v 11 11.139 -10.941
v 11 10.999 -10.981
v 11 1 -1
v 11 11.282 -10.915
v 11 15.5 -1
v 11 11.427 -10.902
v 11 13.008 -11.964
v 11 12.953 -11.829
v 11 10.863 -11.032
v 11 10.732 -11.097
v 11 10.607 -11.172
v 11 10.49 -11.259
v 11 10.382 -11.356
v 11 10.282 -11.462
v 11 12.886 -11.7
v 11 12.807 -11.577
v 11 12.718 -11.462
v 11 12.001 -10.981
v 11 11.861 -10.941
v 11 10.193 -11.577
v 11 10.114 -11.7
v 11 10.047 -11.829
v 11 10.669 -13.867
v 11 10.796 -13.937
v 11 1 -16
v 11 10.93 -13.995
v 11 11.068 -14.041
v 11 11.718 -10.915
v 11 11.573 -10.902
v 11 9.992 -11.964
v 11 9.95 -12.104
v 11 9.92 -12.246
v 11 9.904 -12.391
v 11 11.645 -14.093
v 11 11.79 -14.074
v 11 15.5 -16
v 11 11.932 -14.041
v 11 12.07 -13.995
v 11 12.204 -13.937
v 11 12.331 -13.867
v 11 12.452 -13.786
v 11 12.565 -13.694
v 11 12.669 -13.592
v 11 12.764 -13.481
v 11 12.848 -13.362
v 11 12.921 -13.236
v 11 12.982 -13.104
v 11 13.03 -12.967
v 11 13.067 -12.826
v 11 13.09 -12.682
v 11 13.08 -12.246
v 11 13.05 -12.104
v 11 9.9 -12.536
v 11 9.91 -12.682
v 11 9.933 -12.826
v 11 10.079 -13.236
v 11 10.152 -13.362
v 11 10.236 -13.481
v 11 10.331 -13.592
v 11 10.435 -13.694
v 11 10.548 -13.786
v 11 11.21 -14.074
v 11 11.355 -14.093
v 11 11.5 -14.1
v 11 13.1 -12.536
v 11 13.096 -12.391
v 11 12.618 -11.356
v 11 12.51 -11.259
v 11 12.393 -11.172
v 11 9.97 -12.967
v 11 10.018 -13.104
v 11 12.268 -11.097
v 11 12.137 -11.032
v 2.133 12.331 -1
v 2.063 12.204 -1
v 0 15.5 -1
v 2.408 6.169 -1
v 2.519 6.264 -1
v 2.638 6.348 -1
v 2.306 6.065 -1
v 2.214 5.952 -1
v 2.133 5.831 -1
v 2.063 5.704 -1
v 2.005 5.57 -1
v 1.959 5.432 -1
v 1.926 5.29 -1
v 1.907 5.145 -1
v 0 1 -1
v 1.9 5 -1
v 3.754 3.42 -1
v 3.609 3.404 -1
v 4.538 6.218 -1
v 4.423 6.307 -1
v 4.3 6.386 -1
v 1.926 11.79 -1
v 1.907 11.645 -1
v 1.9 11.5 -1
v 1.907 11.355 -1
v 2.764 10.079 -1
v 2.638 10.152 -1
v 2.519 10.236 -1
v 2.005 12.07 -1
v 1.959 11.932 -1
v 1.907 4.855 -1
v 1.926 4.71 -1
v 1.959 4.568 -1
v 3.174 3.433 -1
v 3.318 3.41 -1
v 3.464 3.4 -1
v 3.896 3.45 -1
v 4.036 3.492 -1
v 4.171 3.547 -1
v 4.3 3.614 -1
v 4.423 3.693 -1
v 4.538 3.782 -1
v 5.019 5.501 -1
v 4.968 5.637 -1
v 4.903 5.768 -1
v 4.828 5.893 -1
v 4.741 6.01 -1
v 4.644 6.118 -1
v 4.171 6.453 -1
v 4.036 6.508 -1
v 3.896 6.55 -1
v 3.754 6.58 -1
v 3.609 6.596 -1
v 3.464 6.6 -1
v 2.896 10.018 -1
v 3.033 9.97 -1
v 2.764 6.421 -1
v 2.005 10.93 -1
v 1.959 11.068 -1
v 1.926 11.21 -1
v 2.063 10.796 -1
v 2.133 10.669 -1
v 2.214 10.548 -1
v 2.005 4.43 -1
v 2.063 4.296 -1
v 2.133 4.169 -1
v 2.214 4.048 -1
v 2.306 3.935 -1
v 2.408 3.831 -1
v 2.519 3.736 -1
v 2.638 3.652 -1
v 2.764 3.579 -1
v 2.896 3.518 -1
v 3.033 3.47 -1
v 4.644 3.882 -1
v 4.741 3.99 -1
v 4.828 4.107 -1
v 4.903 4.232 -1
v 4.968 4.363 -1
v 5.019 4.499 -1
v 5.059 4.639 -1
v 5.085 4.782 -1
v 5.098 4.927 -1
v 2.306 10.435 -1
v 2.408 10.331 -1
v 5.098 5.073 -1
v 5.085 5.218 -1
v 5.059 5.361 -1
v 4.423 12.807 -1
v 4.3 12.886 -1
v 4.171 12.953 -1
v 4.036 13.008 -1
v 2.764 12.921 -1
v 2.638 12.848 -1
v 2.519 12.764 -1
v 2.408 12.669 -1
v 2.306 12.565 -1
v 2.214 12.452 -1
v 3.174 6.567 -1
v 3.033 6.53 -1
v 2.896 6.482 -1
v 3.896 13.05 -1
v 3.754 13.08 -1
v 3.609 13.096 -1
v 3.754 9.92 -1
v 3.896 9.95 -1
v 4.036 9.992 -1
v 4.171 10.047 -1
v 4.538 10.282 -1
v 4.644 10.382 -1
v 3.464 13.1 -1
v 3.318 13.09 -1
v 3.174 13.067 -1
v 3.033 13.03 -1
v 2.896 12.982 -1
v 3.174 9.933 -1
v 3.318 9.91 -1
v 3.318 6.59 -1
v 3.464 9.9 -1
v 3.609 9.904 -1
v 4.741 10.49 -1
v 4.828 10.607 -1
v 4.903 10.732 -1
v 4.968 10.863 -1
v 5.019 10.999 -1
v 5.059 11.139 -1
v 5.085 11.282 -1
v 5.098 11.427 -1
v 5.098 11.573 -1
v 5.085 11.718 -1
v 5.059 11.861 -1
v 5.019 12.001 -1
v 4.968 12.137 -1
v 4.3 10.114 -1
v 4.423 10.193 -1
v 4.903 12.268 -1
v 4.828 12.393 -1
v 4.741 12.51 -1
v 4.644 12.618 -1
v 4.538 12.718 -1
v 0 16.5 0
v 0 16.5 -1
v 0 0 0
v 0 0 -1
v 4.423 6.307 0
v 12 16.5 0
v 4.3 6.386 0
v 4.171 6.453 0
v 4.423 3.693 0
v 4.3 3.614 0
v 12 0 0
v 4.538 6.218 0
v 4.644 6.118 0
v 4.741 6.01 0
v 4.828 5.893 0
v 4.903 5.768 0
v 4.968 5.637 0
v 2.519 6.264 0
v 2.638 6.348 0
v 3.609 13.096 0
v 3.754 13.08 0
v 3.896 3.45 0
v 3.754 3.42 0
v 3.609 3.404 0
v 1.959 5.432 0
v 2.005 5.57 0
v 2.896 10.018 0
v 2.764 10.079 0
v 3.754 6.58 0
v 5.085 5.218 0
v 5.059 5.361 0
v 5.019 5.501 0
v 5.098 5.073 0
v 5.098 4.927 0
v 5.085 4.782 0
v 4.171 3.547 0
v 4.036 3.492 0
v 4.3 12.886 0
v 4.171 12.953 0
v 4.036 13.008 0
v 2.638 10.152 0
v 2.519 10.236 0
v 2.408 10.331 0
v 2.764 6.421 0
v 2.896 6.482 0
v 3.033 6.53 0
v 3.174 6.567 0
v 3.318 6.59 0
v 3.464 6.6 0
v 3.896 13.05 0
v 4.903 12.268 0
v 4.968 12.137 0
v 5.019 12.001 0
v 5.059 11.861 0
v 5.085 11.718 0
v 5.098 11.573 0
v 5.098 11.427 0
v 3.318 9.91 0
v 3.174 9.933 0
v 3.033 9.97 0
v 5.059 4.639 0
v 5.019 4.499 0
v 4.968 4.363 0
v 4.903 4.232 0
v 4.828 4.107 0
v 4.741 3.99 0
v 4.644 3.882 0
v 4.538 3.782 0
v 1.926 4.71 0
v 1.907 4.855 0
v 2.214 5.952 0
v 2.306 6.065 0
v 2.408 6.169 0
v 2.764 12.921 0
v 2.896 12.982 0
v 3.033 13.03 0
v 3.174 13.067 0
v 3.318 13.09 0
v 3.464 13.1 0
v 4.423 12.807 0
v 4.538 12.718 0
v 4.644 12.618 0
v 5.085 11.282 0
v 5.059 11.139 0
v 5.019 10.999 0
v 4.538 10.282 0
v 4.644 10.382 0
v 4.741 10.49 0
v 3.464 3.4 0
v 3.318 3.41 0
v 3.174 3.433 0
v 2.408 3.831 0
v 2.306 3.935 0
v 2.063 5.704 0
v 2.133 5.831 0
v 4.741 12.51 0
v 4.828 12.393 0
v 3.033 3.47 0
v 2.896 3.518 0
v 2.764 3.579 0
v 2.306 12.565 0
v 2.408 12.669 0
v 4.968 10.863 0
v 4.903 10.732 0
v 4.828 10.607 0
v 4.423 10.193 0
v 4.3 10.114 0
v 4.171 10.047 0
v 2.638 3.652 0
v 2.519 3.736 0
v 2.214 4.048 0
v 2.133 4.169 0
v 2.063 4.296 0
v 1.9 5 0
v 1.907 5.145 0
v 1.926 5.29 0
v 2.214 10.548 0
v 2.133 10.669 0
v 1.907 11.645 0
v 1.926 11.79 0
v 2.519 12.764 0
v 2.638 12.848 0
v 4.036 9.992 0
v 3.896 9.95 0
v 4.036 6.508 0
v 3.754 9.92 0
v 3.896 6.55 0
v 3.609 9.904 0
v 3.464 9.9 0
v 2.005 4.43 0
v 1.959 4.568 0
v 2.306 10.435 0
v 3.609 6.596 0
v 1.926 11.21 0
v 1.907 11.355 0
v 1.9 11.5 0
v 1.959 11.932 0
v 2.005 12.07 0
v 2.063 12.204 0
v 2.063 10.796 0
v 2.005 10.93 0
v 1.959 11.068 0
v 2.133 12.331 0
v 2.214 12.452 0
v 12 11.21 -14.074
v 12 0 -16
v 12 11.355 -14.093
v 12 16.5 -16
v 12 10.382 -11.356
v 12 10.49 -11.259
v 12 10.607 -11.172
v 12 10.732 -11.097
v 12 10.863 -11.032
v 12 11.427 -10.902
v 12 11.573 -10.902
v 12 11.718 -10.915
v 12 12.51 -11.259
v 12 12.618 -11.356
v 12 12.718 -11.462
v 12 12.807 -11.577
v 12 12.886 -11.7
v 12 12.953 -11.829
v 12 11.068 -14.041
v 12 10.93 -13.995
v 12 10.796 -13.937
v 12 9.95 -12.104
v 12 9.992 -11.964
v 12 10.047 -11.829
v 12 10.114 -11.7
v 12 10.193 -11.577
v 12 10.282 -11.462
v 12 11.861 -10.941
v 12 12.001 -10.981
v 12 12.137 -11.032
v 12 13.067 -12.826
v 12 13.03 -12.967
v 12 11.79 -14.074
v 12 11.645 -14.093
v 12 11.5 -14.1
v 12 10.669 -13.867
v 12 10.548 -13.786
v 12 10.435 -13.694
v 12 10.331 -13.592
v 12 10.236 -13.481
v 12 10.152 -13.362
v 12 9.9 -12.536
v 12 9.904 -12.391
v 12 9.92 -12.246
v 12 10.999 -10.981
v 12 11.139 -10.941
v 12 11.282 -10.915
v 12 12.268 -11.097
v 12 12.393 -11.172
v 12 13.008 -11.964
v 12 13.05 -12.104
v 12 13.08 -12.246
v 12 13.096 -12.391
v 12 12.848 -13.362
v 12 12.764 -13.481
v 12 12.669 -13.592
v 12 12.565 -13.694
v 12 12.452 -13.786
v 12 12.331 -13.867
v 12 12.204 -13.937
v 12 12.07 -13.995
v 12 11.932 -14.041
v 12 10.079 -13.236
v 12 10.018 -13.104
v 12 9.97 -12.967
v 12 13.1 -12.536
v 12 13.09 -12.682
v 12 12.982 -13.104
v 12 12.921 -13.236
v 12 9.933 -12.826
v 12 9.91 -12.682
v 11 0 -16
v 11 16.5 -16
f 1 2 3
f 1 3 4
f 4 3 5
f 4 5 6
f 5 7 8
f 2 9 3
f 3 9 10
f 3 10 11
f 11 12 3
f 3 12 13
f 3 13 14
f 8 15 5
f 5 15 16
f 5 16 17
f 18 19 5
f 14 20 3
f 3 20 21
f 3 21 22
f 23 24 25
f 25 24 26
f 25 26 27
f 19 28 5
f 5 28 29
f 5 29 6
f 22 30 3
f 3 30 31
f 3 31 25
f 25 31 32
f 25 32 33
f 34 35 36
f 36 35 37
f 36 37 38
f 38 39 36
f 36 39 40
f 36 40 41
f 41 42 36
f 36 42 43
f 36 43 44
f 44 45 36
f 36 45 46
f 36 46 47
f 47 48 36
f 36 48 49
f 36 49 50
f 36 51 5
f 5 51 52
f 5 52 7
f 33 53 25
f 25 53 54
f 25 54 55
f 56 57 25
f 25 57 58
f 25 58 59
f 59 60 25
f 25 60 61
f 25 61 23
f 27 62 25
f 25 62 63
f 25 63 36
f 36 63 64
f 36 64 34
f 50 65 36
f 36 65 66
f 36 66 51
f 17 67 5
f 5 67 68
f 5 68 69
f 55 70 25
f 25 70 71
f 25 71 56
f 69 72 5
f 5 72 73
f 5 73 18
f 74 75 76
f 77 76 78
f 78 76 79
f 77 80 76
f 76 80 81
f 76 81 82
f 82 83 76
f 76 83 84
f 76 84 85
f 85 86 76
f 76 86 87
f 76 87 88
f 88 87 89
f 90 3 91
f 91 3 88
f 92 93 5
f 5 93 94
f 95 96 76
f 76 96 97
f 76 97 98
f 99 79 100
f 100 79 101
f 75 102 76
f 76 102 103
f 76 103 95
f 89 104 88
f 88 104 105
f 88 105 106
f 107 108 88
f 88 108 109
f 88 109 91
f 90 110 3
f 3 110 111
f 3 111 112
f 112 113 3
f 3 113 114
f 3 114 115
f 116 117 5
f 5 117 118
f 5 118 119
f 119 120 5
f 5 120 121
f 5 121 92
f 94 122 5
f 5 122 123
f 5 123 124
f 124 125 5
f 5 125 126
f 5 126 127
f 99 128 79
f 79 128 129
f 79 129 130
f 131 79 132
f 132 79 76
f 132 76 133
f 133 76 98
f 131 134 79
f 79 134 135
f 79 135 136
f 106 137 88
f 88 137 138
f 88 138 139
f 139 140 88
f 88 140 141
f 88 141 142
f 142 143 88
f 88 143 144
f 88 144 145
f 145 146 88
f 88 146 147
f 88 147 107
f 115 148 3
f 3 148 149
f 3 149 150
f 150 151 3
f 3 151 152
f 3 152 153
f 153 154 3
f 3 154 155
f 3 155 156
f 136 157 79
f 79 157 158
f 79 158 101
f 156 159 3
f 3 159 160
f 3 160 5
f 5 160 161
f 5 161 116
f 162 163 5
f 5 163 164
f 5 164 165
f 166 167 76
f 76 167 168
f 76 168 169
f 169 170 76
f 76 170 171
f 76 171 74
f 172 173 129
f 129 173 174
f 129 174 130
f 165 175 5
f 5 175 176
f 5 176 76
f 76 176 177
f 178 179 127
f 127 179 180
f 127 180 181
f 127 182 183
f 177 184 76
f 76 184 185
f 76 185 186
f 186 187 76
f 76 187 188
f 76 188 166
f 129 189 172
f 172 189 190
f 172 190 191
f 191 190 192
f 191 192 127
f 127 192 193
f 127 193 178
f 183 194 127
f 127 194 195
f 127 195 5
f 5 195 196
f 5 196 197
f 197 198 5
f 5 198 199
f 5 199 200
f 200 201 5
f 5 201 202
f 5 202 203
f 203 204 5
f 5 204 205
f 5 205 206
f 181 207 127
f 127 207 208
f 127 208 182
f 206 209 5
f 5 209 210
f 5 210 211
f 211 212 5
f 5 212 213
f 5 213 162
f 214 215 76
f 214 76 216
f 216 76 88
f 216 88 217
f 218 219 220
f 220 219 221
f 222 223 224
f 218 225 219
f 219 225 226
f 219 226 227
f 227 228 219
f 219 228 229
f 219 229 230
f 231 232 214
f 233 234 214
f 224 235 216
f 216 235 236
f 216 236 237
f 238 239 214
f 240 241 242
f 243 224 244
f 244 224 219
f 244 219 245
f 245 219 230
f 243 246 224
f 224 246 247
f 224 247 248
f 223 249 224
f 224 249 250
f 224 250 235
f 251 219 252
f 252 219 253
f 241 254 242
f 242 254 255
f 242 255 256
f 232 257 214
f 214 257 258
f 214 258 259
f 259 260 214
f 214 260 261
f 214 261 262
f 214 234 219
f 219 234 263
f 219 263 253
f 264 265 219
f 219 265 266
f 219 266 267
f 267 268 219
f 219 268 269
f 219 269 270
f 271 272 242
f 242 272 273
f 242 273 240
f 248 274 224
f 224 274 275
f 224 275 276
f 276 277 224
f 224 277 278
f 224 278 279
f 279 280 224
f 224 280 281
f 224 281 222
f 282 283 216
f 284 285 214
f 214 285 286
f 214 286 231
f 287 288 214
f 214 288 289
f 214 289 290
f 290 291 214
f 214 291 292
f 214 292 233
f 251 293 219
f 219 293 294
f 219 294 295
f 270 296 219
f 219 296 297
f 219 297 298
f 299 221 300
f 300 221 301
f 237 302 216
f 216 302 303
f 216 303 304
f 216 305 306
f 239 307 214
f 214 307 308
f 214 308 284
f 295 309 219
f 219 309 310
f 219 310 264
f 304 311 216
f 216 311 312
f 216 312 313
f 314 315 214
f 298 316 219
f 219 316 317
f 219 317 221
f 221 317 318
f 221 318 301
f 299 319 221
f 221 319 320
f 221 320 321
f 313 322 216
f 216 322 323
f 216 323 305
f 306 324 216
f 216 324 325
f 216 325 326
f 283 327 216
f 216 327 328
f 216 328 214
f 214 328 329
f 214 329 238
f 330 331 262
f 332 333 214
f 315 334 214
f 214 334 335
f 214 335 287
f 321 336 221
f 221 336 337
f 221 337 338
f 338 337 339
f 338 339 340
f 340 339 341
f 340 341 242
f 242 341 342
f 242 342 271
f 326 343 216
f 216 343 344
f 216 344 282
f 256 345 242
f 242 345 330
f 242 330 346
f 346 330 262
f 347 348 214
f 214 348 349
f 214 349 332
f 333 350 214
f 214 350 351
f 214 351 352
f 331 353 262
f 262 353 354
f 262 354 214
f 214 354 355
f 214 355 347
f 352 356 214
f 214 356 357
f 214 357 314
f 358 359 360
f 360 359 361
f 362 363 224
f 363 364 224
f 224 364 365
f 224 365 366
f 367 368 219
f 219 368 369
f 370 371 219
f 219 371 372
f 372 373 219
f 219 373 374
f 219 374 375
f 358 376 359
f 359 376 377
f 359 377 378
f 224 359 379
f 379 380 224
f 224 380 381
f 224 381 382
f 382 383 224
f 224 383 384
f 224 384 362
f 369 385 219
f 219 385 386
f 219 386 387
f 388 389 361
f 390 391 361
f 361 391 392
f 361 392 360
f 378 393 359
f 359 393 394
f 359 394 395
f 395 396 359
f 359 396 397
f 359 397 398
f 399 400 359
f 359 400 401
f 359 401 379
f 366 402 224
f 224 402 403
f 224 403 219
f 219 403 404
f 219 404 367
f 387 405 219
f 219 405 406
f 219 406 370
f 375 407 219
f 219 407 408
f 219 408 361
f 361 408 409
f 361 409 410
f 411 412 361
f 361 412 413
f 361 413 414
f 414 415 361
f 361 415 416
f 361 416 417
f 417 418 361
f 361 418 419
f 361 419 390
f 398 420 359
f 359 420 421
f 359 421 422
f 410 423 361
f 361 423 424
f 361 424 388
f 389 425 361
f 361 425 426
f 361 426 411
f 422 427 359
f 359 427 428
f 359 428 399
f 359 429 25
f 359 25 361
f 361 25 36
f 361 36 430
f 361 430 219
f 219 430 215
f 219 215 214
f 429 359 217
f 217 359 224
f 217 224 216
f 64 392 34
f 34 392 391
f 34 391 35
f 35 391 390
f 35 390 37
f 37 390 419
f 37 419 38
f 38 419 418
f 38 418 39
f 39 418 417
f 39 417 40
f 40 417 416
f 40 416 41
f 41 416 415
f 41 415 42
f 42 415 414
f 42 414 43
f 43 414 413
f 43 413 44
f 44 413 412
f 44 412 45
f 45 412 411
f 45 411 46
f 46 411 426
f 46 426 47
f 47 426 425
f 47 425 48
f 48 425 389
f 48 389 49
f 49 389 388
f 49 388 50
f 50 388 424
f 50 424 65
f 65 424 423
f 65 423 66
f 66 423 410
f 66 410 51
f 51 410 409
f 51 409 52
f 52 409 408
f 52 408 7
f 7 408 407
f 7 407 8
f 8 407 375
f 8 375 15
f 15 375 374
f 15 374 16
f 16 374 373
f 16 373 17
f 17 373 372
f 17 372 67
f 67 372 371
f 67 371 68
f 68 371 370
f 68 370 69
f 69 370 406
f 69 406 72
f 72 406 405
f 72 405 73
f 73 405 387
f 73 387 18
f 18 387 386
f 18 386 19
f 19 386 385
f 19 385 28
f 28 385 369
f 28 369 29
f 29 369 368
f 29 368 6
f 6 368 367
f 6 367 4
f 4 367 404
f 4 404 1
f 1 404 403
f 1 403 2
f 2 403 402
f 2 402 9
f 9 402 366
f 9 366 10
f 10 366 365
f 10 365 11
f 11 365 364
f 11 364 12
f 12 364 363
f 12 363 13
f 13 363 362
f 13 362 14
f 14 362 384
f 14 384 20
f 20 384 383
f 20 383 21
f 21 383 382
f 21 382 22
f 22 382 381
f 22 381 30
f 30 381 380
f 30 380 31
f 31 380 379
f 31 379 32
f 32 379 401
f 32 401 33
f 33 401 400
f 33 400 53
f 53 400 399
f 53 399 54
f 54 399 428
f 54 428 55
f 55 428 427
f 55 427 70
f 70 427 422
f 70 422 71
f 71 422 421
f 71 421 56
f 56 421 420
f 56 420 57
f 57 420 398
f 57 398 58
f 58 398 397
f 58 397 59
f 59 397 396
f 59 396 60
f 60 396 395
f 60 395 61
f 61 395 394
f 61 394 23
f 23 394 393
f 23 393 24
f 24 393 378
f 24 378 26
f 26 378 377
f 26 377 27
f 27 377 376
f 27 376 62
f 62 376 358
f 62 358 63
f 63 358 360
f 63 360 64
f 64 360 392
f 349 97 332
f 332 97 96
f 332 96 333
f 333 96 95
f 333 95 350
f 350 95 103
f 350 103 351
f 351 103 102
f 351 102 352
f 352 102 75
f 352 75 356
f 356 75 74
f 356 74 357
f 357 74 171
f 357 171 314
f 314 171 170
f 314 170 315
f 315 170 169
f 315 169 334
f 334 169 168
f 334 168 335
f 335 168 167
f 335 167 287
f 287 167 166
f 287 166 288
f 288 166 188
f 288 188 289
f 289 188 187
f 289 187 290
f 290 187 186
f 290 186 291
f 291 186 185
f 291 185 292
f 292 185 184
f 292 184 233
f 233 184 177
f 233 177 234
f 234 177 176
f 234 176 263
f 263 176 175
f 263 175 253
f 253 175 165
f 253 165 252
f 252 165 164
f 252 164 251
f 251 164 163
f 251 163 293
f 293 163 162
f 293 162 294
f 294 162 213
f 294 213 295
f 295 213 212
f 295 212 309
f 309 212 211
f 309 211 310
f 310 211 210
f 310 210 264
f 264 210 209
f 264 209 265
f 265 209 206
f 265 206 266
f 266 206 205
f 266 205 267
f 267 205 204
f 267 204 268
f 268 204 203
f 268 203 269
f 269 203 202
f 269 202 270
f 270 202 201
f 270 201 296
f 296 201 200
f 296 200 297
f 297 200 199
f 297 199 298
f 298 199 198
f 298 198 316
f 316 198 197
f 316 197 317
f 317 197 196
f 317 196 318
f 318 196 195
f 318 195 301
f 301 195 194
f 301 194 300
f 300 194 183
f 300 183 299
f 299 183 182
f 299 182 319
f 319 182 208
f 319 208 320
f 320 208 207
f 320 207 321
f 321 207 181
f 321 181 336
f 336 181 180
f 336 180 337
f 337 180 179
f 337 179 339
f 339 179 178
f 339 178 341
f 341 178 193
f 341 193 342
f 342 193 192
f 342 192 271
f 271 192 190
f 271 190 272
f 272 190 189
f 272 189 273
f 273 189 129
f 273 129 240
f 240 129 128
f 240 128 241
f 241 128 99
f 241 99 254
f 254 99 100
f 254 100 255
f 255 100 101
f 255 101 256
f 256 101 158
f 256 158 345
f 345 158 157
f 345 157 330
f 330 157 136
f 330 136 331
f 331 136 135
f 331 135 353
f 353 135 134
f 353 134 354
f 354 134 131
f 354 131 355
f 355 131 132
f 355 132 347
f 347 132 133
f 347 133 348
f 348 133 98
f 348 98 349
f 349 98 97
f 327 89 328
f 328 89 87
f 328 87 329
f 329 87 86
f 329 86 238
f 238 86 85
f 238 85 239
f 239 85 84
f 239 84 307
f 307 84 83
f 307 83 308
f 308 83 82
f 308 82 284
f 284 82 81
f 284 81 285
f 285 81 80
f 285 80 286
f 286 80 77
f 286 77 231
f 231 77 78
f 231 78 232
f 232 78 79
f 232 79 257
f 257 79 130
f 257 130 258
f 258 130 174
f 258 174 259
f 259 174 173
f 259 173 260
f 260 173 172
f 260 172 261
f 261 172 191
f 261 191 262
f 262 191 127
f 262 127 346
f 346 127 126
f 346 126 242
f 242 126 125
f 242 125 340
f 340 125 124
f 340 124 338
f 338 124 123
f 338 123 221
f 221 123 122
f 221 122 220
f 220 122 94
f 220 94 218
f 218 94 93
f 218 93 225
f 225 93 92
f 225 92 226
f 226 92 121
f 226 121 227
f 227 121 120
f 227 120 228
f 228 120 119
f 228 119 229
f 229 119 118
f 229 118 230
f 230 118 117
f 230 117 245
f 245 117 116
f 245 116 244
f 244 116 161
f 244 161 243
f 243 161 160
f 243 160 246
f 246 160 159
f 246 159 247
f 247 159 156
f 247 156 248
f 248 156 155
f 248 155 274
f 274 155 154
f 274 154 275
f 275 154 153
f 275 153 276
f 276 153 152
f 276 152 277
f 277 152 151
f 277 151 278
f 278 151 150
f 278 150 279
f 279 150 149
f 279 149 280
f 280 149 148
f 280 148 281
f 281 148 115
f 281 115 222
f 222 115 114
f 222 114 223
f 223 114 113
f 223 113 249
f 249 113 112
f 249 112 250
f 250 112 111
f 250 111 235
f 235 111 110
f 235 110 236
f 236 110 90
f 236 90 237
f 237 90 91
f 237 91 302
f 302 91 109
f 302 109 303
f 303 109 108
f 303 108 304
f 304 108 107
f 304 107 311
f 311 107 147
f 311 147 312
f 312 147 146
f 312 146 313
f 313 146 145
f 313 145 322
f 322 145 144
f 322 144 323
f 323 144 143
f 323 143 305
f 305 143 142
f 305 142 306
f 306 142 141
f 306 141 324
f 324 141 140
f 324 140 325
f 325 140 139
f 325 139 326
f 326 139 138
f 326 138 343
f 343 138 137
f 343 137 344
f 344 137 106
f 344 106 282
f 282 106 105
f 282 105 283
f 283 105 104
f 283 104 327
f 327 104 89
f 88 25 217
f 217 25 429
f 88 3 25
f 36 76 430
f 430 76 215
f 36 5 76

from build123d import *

# Parameters (mm, degrees)
EXTRUDE_1_DEPTH     = 16.5
SKETCH_2_R          = 1.6
CUT_EXTRUDE_1_DEPTH = 6
SKETCH_3_R          = 1.6
CUT_EXTRUDE_2_DEPTH = 10
EXTRUDE_2_DEPTH     = 1
EXTRUDE_3_DEPTH     = 1


with BuildPart() as part:
    # 草图1 → 凸台-拉伸1 (new body)
    with BuildSketch(Plane(origin=(0, 0, 0), x_dir=(1, 0, 0), z_dir=(0, 1, 0))):
        Polygon((0, 0), (12, 0), (12, 16), (11, 16), (11, 1), (0, 1), align=None)
    extrude(amount=EXTRUDE_1_DEPTH)

    # 草图2 → 切除-拉伸1 (cut)
    with BuildSketch(Plane(origin=(12, 0, 0), x_dir=(0, 0, -1), z_dir=(1, 0, 0))):
        with Locations((12.5, 11.5)):
            Circle(SKETCH_2_R)
    extrude(amount=-CUT_EXTRUDE_1_DEPTH, mode=Mode.SUBTRACT)

    # 草图3 → 切除-拉伸2 (cut)
    with BuildSketch(Plane(origin=(0, 0, -1), x_dir=(-1, 0, 0), z_dir=(0, 0, -1))):
        with Locations((-3.5, 5)):
            Circle(SKETCH_3_R)
        with Locations((-3.5, 11.5)):
            Circle(SKETCH_3_R)
    extrude(amount=-CUT_EXTRUDE_2_DEPTH, mode=Mode.SUBTRACT)

    # 草图4 → 凸台-拉伸2 (add)
    with BuildSketch(Plane.XZ):
        Polygon((0, -1), (11, -1), (11, -16), align=None)
    extrude(amount=-EXTRUDE_2_DEPTH)

    # 草图5 → 凸台-拉伸3 (add)
    with BuildSketch(Plane(origin=(0, 16.5, 0), x_dir=(1, 0, 0), z_dir=(0, 1, 0))):
        Polygon((0, 1), (11, 1), (11, 16), align=None)
    extrude(amount=-EXTRUDE_3_DEPTH)


solid = part.part
